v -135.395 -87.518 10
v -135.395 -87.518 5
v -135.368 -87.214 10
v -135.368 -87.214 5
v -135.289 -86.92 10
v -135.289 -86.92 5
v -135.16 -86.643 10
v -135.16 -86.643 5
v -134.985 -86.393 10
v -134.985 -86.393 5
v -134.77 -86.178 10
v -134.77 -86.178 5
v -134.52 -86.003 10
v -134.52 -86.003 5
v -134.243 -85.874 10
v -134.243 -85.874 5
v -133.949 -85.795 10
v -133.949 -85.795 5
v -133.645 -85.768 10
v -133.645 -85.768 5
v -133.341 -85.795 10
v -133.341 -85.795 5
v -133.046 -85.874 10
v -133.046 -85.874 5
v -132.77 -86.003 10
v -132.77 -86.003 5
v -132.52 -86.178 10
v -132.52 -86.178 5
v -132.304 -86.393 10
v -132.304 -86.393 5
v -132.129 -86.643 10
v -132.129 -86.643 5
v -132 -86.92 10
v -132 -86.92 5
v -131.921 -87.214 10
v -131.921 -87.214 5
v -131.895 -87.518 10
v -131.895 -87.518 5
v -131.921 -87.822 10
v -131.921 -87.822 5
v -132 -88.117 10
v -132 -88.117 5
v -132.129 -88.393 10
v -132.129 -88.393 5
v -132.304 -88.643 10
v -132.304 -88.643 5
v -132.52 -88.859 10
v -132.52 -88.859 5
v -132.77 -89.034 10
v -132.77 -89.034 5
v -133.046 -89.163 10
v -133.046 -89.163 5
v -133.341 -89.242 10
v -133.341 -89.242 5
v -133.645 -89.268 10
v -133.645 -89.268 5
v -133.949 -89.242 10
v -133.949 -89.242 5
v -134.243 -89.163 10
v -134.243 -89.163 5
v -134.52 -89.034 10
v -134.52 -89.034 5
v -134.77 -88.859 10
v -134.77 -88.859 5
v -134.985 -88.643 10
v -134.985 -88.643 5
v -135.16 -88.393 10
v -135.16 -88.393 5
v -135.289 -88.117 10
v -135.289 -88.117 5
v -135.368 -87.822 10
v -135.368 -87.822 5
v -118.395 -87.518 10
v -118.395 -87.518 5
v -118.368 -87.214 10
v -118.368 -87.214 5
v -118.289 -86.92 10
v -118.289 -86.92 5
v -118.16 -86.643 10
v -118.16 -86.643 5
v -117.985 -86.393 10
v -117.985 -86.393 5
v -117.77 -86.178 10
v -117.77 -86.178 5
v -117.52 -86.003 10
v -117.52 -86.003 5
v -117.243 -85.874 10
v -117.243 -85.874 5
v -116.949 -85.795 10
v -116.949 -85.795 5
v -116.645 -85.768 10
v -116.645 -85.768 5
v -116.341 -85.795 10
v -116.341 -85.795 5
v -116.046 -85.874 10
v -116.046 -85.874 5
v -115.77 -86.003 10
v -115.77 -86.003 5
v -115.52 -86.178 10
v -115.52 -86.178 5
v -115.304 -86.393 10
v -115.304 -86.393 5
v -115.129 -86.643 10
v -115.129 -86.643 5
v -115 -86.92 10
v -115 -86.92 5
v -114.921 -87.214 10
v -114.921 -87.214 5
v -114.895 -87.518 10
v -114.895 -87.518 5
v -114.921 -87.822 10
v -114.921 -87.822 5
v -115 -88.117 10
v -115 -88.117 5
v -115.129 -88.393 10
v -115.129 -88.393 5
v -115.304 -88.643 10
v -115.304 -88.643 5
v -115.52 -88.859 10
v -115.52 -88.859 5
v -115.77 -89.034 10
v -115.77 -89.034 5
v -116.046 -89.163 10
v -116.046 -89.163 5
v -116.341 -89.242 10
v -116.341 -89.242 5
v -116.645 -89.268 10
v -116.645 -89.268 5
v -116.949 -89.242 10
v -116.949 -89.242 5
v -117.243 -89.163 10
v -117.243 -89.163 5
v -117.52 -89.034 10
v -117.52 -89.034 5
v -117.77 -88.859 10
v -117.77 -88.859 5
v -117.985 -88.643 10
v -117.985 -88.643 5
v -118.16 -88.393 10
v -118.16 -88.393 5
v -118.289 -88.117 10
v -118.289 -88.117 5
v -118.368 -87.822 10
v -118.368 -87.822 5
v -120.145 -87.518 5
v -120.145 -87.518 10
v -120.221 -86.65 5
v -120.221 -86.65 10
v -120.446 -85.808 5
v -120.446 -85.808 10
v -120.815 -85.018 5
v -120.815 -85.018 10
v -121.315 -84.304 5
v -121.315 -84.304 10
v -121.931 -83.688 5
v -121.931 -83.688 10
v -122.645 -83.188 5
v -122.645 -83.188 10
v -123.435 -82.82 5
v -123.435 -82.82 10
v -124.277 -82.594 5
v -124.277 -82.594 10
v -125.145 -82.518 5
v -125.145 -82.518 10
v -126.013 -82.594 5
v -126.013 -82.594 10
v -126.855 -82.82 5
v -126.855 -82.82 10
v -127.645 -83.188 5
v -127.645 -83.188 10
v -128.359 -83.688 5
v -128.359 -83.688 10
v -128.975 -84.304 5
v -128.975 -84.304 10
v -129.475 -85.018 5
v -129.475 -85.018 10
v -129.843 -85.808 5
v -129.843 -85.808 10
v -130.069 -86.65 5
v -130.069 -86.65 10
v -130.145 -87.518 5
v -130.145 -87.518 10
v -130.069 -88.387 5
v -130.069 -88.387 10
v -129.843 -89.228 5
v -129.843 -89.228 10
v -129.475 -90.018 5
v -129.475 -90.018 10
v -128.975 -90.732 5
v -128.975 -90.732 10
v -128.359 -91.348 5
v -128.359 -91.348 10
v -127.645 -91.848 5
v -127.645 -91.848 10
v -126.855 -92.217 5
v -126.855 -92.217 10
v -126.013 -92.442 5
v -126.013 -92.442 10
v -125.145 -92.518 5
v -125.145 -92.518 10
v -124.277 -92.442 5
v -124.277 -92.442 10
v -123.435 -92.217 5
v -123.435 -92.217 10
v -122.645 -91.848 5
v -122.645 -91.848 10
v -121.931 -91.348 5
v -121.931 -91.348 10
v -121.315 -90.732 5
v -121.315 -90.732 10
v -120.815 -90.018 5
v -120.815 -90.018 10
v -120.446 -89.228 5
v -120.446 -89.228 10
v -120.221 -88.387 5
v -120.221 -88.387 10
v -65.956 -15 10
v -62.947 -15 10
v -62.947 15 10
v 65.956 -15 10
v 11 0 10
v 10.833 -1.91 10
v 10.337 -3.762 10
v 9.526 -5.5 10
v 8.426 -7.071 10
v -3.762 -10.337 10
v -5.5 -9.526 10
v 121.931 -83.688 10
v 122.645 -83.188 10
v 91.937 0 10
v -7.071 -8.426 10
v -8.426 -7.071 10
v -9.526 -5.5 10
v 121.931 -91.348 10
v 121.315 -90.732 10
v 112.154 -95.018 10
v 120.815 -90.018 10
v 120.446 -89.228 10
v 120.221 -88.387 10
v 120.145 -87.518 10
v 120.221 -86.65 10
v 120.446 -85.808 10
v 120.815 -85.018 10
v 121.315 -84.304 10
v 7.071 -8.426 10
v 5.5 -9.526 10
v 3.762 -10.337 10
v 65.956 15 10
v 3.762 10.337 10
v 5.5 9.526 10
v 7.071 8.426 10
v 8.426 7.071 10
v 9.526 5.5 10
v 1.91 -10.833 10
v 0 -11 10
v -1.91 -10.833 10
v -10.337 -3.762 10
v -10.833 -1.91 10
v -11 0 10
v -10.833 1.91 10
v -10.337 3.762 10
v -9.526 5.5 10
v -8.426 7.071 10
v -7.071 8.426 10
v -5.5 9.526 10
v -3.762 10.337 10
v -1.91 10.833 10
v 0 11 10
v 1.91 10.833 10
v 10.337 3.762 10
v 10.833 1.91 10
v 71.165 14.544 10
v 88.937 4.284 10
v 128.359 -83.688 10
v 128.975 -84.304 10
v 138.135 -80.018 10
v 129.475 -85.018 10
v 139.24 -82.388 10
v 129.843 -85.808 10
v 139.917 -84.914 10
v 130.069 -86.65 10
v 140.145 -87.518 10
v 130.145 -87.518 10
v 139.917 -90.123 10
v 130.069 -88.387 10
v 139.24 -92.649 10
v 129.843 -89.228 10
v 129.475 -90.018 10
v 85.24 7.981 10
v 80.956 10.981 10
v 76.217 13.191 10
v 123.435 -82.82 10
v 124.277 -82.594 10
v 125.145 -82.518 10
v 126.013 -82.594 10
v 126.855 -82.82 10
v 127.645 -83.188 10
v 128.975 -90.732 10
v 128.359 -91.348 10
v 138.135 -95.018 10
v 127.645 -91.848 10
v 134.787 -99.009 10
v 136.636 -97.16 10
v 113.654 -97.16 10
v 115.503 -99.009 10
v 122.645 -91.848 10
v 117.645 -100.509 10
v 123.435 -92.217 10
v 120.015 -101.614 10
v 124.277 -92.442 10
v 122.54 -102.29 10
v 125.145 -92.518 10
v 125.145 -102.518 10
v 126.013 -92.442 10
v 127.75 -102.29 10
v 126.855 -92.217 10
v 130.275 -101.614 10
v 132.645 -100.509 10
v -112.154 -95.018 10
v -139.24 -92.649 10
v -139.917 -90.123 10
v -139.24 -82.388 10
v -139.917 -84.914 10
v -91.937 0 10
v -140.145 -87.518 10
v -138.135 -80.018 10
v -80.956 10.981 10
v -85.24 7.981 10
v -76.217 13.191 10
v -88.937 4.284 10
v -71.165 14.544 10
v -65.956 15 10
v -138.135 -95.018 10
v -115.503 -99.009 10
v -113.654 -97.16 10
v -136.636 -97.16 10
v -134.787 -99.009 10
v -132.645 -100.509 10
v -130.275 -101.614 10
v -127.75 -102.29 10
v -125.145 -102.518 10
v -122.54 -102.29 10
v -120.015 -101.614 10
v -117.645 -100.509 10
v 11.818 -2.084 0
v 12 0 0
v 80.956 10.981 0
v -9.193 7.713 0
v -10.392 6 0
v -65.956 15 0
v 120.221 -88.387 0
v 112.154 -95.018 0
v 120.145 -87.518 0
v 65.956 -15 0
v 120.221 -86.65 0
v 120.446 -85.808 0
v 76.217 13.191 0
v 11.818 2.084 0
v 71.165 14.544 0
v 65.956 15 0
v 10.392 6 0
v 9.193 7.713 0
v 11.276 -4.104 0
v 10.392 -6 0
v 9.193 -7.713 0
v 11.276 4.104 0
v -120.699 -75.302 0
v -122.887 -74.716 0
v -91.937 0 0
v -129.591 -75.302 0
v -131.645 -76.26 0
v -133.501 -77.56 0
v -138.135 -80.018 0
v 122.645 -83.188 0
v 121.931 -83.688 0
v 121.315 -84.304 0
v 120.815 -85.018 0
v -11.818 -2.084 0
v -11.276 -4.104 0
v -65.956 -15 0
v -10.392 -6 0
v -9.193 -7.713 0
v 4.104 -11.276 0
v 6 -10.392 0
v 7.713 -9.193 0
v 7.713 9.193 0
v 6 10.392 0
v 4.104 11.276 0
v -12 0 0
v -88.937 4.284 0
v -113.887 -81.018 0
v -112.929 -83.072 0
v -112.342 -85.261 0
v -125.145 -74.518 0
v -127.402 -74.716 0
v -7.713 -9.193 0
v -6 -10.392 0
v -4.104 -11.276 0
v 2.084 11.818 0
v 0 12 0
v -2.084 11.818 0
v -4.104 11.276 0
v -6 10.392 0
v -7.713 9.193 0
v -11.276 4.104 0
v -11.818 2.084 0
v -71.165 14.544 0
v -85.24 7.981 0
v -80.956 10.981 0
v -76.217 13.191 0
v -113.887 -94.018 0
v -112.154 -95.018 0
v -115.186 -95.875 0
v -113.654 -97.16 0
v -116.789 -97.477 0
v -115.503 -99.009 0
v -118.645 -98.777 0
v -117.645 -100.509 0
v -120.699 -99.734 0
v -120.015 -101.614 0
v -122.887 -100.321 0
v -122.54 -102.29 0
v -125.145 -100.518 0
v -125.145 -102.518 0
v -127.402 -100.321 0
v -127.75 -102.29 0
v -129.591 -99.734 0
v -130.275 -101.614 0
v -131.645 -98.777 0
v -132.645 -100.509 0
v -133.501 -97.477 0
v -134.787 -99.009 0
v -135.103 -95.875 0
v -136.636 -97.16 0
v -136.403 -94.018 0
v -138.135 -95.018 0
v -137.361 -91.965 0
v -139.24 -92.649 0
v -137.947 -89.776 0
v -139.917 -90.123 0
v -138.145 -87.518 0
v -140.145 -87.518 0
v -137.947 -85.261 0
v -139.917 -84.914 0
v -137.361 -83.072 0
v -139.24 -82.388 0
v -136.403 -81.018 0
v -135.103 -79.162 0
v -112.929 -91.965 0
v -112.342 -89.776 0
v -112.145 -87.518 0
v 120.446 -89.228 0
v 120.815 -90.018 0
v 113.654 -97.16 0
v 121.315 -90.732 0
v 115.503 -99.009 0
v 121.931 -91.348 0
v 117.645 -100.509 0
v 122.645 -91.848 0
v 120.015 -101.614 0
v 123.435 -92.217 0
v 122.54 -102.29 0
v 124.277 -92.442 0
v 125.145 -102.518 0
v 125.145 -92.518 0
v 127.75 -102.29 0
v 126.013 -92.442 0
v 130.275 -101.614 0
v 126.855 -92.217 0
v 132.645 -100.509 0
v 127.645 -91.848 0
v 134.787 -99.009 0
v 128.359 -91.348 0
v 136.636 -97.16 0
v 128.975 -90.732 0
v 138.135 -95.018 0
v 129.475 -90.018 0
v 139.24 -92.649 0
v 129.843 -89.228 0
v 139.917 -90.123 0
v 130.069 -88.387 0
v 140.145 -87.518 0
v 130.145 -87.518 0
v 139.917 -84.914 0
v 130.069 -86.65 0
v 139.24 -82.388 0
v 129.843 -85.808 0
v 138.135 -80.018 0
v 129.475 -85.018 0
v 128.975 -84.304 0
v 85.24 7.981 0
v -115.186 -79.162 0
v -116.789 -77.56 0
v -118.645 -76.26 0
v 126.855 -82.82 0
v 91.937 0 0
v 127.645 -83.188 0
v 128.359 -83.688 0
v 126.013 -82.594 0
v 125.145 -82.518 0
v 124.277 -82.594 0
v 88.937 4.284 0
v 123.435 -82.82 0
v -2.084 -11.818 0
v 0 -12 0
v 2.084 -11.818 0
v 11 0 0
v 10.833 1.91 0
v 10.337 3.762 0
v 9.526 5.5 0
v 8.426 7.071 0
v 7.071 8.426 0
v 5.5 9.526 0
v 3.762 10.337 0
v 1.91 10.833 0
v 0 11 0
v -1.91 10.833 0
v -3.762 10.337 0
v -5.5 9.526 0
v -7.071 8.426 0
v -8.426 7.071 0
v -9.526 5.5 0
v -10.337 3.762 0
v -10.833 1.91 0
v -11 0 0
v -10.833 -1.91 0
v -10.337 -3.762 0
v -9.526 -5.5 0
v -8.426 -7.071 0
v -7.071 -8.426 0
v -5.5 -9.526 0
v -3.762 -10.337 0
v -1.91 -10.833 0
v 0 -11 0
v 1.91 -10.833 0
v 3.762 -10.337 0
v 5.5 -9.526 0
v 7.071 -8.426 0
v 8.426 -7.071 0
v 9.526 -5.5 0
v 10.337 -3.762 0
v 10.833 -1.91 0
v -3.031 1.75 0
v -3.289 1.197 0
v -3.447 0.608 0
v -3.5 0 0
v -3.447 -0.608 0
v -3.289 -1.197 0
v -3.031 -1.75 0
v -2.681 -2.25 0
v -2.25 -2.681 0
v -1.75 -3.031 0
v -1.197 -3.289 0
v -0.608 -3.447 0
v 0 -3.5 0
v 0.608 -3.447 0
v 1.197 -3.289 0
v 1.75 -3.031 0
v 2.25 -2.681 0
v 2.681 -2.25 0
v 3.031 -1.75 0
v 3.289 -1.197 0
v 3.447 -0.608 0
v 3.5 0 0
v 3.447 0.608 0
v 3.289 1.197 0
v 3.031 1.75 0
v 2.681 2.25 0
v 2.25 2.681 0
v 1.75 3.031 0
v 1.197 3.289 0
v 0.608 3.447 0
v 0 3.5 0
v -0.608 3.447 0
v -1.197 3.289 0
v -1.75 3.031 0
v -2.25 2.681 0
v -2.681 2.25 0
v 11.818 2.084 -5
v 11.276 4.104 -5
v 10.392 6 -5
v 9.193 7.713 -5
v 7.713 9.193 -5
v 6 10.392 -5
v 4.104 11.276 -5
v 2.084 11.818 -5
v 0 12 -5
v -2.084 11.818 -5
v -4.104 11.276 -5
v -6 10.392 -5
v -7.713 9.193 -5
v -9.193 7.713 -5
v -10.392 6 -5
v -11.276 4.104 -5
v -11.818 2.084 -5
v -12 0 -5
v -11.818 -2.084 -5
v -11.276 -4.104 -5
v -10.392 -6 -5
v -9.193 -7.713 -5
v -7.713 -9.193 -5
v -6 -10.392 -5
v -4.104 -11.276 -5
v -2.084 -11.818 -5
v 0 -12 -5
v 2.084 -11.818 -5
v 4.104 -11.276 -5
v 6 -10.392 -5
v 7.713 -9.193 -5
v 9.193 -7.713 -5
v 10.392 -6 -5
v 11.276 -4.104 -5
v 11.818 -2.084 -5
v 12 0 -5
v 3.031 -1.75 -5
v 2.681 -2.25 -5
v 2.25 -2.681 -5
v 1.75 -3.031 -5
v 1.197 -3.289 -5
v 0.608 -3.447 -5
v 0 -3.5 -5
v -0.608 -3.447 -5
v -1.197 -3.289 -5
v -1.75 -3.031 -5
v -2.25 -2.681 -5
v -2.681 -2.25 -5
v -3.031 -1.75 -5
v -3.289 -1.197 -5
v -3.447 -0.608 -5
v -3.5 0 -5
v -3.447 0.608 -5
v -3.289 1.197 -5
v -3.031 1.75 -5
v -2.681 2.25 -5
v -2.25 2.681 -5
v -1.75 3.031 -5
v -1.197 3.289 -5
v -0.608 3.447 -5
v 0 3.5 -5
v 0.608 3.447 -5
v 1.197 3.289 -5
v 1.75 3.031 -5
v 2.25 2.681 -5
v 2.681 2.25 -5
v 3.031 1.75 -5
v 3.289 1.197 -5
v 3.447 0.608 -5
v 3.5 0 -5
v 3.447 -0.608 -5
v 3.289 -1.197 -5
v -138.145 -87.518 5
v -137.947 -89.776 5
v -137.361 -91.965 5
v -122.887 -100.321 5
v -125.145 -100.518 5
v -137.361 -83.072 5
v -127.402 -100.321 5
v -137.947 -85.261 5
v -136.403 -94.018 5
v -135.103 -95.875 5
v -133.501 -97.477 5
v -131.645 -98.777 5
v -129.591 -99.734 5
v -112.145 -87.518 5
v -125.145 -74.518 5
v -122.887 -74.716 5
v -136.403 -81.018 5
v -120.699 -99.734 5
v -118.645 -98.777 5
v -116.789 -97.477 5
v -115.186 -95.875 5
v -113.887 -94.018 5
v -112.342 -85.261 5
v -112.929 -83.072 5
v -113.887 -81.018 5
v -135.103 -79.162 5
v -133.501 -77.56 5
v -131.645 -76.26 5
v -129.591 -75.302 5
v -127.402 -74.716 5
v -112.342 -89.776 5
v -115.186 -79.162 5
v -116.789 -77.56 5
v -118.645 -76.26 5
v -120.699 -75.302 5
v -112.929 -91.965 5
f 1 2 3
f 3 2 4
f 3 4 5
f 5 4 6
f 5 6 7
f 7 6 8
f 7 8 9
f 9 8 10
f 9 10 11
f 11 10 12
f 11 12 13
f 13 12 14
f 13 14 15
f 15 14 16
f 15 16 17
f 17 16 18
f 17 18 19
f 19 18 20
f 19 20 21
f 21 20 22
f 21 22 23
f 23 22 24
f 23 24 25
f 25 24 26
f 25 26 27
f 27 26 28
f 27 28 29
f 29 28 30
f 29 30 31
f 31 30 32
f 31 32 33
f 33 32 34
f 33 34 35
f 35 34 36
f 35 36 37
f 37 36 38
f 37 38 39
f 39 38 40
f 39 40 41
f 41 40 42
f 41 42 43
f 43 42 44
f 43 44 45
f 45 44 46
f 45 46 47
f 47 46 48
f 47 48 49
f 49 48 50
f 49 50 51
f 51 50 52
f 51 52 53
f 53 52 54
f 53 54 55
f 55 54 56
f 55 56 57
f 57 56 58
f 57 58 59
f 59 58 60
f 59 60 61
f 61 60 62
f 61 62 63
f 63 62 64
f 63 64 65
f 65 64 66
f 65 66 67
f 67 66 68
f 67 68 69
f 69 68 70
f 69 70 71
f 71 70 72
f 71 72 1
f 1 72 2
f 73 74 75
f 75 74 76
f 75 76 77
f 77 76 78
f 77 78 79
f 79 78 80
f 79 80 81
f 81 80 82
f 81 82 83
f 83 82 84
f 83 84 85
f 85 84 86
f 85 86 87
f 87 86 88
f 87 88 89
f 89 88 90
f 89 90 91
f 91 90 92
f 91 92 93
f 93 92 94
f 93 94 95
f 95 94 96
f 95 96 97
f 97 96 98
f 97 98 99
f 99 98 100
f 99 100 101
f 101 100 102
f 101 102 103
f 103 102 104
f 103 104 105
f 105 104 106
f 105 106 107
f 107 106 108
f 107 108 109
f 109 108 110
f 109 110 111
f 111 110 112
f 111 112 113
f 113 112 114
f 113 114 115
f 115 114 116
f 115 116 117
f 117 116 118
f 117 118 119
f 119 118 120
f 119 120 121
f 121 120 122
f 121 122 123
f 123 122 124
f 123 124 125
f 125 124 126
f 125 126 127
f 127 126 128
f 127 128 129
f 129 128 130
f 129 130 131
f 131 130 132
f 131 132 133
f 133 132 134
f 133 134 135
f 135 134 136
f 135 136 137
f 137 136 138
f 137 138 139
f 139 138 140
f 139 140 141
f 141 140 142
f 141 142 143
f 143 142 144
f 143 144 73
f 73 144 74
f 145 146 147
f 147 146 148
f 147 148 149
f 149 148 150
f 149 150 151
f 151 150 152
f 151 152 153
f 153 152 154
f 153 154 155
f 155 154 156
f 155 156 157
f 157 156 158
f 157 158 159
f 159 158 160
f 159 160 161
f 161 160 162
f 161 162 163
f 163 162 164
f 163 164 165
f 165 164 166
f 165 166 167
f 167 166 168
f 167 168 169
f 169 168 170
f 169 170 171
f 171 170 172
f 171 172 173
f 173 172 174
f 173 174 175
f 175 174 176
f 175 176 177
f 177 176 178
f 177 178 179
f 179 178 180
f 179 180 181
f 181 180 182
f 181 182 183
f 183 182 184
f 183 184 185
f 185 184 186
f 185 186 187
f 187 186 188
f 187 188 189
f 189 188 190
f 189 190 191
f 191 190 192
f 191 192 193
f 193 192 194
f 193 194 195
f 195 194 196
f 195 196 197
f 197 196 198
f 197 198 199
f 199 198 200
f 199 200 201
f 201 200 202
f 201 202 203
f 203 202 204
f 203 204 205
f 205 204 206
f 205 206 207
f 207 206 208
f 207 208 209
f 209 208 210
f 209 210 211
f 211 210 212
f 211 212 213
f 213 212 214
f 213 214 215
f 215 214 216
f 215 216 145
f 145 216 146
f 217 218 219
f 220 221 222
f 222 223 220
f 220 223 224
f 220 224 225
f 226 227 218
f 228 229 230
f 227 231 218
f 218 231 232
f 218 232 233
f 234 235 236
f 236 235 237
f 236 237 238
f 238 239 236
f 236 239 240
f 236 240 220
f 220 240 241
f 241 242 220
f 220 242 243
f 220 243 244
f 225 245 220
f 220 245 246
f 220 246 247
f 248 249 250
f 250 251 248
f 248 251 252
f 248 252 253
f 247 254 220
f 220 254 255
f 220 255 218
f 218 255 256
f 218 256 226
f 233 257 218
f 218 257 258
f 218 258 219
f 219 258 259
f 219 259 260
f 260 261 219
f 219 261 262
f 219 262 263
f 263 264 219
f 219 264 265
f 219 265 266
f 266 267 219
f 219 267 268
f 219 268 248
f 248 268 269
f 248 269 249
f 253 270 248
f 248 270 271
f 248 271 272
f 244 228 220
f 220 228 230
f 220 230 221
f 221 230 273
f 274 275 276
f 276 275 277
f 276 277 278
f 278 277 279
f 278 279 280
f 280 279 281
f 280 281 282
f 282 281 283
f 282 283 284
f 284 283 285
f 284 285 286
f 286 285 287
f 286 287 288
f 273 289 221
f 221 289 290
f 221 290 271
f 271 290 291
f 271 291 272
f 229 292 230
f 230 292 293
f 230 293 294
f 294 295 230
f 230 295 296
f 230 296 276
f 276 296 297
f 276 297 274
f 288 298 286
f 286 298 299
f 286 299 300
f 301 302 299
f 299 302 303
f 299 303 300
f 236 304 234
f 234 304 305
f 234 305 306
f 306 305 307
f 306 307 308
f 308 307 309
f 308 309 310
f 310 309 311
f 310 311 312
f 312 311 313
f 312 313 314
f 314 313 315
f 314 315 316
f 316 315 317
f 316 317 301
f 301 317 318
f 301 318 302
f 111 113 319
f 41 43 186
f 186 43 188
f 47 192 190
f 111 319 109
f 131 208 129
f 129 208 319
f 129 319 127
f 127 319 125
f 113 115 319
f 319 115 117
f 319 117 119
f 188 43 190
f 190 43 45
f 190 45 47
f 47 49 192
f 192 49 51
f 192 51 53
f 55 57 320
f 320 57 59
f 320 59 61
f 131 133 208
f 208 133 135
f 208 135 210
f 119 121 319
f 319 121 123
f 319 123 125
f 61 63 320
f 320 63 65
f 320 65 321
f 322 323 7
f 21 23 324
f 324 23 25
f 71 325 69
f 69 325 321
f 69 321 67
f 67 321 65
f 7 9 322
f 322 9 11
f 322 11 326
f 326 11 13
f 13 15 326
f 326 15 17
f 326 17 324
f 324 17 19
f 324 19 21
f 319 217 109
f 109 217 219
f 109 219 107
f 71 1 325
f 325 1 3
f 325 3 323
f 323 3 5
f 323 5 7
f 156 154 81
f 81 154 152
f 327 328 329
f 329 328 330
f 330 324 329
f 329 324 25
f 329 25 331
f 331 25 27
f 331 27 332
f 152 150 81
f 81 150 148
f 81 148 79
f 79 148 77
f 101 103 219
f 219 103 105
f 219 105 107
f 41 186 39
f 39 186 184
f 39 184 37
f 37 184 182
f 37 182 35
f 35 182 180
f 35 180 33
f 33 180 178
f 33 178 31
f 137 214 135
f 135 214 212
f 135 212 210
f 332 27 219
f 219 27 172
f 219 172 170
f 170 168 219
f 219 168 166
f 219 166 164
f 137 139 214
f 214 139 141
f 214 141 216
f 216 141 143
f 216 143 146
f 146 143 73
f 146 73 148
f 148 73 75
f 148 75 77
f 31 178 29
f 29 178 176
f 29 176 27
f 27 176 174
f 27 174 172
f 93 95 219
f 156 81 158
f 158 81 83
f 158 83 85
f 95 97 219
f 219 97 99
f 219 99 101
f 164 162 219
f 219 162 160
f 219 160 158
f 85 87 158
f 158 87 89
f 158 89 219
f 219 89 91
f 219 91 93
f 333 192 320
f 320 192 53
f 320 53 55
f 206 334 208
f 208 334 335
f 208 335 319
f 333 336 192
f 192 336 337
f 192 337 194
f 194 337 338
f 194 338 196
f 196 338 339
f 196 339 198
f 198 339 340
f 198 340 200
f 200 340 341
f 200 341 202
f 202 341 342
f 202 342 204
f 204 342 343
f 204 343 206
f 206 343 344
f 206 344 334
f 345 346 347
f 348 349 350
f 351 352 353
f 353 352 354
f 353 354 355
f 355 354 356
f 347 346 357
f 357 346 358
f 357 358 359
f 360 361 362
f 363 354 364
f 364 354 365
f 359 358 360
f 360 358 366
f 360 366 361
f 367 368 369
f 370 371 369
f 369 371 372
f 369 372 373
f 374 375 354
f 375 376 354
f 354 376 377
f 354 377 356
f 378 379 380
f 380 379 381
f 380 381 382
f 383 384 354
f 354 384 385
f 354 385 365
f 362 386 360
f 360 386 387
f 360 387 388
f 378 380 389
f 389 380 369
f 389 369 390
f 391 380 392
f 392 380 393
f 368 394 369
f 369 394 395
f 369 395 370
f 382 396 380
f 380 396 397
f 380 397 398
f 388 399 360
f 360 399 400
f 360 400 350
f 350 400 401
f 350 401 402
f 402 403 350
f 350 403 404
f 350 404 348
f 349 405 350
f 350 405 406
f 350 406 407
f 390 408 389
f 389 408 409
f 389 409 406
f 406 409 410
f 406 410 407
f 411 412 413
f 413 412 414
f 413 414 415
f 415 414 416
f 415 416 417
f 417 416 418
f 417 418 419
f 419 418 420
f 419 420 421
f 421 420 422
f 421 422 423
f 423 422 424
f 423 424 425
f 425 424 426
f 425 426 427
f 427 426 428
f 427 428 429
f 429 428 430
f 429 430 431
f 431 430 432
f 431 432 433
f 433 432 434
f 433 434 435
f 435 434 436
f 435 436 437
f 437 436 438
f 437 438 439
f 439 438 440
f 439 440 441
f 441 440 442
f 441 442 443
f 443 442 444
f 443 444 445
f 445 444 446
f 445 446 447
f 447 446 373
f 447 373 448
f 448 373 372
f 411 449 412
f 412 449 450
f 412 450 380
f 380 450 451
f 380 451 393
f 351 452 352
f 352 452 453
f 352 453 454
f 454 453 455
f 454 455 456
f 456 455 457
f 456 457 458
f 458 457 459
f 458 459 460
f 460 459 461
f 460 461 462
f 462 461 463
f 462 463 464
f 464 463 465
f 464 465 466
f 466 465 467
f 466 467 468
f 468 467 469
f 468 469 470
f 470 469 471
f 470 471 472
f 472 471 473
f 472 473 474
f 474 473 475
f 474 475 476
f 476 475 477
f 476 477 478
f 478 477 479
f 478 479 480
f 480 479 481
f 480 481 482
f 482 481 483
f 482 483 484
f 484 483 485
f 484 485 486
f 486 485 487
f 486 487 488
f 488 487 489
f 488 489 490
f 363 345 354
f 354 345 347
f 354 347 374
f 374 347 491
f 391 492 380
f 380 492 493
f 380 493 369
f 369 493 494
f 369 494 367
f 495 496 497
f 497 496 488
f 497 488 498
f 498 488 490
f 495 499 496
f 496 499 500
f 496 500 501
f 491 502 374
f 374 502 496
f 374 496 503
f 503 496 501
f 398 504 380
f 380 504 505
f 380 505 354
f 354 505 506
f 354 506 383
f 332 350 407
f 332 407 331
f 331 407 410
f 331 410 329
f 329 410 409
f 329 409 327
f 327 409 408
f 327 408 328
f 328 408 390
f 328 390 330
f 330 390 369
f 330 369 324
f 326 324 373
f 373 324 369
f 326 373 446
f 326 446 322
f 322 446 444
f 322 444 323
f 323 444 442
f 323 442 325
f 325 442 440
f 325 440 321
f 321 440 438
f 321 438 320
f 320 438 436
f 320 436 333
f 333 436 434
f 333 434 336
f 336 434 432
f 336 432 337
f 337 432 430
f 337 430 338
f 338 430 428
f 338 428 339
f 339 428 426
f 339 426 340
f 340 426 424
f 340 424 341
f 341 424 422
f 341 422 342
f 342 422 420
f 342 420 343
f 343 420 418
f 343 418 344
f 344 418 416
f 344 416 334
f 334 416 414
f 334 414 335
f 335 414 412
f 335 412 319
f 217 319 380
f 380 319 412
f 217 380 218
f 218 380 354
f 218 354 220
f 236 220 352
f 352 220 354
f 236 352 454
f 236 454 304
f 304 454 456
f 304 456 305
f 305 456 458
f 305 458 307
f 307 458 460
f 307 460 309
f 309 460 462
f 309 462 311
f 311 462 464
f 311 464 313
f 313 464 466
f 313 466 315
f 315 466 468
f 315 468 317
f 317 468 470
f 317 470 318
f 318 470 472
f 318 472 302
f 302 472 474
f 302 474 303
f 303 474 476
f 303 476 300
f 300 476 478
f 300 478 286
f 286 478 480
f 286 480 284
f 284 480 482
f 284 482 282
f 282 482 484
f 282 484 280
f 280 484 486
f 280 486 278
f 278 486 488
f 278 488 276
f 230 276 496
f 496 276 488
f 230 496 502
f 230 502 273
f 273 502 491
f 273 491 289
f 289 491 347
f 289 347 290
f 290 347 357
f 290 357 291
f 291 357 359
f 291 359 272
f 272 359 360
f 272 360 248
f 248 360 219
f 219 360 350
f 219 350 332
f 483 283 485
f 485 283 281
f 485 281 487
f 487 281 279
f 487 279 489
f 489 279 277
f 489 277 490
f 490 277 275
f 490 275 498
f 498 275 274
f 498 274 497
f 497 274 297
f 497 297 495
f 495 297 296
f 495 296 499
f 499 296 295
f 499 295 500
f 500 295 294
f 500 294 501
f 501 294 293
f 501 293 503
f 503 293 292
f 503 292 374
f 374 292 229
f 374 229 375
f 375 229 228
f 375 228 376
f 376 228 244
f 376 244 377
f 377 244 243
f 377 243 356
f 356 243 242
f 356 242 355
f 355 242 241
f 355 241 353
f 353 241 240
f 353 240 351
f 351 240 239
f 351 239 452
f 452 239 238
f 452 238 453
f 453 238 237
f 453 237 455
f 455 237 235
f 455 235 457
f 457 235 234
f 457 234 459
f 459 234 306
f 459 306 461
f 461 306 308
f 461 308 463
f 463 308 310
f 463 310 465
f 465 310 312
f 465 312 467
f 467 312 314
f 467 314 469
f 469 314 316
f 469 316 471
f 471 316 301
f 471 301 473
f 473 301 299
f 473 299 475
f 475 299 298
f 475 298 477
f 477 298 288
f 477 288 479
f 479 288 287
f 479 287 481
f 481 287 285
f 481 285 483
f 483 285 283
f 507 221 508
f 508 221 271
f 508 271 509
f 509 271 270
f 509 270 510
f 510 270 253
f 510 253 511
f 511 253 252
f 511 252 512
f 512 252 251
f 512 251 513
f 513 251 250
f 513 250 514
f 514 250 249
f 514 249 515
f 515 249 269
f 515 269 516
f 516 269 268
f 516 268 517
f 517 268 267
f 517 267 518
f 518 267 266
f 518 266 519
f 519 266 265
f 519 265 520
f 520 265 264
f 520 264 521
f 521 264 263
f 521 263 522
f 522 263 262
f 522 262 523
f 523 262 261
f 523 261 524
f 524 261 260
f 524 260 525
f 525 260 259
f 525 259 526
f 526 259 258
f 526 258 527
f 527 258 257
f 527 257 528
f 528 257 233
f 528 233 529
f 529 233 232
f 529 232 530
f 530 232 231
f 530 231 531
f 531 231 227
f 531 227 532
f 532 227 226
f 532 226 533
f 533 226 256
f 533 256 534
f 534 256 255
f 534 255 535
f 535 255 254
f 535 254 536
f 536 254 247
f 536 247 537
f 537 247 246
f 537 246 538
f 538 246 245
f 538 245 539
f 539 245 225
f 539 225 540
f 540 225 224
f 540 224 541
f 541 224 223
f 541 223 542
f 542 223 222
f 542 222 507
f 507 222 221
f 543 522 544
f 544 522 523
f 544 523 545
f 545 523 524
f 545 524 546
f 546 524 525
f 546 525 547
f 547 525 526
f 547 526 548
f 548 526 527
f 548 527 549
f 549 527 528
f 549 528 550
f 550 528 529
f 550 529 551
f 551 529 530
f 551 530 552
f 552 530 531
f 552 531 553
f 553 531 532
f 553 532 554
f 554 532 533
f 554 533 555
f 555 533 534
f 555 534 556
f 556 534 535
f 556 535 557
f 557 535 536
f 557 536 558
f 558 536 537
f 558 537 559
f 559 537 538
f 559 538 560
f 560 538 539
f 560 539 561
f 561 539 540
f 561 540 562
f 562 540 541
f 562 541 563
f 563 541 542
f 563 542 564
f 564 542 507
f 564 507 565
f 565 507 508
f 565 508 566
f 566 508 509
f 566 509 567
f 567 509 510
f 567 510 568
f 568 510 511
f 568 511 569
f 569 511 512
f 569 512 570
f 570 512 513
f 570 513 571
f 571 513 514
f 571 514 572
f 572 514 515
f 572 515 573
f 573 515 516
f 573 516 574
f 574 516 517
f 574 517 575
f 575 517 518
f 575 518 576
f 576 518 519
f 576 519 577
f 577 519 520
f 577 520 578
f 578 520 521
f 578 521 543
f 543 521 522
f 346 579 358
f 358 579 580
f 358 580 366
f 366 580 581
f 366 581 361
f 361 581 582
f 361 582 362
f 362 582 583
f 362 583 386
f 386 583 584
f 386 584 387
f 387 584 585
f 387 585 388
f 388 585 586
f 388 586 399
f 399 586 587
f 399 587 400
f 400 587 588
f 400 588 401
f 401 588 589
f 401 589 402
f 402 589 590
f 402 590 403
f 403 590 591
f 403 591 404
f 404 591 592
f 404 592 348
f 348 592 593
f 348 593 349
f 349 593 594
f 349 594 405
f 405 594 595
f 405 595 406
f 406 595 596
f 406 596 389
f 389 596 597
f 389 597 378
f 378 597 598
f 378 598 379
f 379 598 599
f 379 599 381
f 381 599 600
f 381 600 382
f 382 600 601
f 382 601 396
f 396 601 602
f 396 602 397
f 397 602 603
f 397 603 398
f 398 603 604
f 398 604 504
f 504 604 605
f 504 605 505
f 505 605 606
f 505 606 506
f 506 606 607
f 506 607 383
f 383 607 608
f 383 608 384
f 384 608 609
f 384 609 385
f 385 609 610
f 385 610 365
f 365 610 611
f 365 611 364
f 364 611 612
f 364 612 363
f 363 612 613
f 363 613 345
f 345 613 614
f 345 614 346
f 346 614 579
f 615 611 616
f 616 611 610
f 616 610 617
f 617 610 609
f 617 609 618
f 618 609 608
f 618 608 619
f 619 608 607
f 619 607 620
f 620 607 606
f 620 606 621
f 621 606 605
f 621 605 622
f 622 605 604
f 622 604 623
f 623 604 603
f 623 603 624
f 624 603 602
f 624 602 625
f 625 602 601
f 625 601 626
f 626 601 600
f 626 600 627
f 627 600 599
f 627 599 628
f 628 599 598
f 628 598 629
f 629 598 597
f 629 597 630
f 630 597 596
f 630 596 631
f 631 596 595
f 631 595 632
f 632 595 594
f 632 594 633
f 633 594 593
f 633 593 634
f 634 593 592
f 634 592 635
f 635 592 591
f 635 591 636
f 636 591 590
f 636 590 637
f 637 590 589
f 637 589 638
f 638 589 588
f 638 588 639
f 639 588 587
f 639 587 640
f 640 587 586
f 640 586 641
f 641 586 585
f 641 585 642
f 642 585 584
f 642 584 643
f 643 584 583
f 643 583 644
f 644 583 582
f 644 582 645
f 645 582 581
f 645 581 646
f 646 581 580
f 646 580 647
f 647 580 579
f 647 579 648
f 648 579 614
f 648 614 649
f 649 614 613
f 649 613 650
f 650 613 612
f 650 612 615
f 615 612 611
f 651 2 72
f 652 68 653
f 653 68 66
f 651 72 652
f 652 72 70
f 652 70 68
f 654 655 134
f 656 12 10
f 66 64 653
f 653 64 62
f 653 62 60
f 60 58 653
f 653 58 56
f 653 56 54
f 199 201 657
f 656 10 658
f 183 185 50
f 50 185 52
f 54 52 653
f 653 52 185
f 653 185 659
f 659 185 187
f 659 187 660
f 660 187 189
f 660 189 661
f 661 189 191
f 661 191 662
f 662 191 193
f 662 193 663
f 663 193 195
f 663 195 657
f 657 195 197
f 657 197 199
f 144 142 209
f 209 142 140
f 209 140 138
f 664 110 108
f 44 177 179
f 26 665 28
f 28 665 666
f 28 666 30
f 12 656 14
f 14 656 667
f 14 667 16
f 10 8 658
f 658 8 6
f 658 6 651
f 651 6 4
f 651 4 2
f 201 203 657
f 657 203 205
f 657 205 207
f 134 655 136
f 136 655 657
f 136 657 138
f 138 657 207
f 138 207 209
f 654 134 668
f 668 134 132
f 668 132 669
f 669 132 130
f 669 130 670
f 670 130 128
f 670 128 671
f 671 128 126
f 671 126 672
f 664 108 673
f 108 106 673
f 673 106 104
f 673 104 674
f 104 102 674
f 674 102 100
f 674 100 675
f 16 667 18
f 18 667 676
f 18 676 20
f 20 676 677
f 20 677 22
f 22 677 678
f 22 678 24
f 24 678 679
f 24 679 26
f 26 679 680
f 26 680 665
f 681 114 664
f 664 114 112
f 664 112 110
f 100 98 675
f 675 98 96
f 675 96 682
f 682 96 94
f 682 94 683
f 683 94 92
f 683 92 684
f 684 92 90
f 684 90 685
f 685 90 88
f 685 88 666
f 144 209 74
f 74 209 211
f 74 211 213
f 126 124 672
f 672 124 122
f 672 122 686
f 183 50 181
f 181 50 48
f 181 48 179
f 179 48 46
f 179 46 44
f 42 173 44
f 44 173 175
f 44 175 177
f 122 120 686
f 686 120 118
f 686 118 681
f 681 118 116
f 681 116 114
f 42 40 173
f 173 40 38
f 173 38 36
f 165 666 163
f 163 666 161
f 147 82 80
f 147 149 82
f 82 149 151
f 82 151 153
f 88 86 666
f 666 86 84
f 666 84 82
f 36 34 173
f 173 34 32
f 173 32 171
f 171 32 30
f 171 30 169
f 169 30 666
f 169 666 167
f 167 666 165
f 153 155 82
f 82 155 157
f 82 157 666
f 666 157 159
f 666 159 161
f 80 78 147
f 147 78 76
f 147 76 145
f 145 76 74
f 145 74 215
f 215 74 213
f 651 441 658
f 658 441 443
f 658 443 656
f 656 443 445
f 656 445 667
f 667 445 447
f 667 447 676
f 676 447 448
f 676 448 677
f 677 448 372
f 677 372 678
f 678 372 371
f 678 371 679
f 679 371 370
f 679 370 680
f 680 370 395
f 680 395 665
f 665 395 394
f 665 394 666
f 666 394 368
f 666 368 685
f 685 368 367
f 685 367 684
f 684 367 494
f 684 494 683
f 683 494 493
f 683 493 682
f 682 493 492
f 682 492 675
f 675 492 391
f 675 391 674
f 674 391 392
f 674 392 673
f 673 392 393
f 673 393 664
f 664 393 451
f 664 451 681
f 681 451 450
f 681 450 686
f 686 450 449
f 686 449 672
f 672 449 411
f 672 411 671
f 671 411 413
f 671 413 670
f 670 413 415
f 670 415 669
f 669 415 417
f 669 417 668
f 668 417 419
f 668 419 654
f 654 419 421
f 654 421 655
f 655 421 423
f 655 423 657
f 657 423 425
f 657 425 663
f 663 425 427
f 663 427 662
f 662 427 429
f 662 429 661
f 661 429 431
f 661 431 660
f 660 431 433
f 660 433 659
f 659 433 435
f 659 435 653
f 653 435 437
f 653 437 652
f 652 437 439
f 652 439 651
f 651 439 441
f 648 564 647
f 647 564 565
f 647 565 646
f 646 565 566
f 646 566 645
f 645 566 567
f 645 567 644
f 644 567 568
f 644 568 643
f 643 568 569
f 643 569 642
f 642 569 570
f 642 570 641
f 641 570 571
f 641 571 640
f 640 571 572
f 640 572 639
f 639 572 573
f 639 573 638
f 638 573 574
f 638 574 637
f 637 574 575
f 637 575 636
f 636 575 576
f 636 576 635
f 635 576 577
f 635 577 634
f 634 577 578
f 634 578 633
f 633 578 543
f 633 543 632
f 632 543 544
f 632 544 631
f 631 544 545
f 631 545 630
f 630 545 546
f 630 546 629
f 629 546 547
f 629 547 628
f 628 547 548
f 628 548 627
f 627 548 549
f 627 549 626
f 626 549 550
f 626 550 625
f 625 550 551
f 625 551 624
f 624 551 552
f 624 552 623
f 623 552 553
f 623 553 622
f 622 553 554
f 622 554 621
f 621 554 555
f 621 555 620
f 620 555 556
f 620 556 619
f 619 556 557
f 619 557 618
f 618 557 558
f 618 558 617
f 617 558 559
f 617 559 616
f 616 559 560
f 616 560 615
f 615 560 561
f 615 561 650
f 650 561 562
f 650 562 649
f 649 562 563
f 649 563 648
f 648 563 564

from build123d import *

# Parameters (mm, degrees)
SKETCH1_R           = 1.75
BOSS_EXTRUDE1_DEPTH = 10
SKETCH2_R           = 11
SKETCH2_R_2         = 5
CUT_EXTRUDE1_DEPTH  = 10
SKETCH3_R           = 12
BOSS_EXTRUDE2_DEPTH = 5
SKETCH4_R           = 13
CUT_EXTRUDE2_DEPTH  = 5
SKETCH5_R           = 3.5
CUT_EXTRUDE3_DEPTH  = 175.285919969


with BuildPart() as part:
    # Sketch1 → Boss-Extrude1 (new body)
    with BuildSketch(Plane.XY):
        with BuildLine():
            Line((65.95591629, 15), (-65.95591629, 15))
            ThreePointArc((-65.95591629, 15), (-80.95591629, 10.980762114), (-91.936678404, 0))
            Line((-91.936678404, 0), (-138.135251983, -80.018276676))
            ThreePointArc((-138.135251983, -80.018276676), (-132.644870926, -100.508657733), (-112.154489869, -95.018276676))
            Line((-112.154489869, -95.018276676), (-65.95591629, -15))
            Line((-65.95591629, -15), (65.95591629, -15))
            Line((65.95591629, -15), (112.154489869, -95.018276676))
            ThreePointArc((112.154489869, -95.018276676), (132.644870926, -100.508657733), (138.135251983, -80.018276676))
            Line((138.135251983, -80.018276676), (91.936678404, 0))
            ThreePointArc((91.936678404, 0), (80.95591629, 10.980762114), (65.95591629, 15))
        make_face()
        with Locations((-133.644870926, -87.518276676)):
            Circle(SKETCH1_R, mode=Mode.SUBTRACT)
        with Locations((-116.644870926, -87.518276676)):
            Circle(SKETCH1_R, mode=Mode.SUBTRACT)
    extrude(amount=BOSS_EXTRUDE1_DEPTH)

    # Sketch2 → Cut-Extrude1 (cut)
    with BuildSketch(Plane.XY.offset(10)):
        Circle(SKETCH2_R)
        with Locations((-125.144870926, -87.518276676)):
            Circle(SKETCH2_R_2)
        with Locations((125.144870926, -87.518276676)):
            Circle(SKETCH2_R_2)
    extrude(amount=-CUT_EXTRUDE1_DEPTH, mode=Mode.SUBTRACT)

    # Sketch3 → Boss-Extrude2 (add)
    with BuildSketch(Plane(origin=(0, 0, 0), x_dir=(-1, 0, 0), z_dir=(0, 0, -1))):
        Circle(SKETCH3_R)
    extrude(amount=BOSS_EXTRUDE2_DEPTH)

    # Sketch4 → Cut-Extrude2 (cut)
    with BuildSketch(Plane(origin=(0, 0, 0), x_dir=(-1, 0, 0), z_dir=(0, 0, -1))):
        with Locations((125.144870926, -87.518276676)):
            Circle(SKETCH4_R)
    extrude(amount=-CUT_EXTRUDE2_DEPTH, mode=Mode.SUBTRACT)

    # Sketch5 → Cut-Extrude3 (cut, through all)
    with BuildSketch(Plane.XY.offset(10)):
        Circle(SKETCH5_R)
    extrude(amount=-CUT_EXTRUDE3_DEPTH, mode=Mode.SUBTRACT)


solid = part.part
